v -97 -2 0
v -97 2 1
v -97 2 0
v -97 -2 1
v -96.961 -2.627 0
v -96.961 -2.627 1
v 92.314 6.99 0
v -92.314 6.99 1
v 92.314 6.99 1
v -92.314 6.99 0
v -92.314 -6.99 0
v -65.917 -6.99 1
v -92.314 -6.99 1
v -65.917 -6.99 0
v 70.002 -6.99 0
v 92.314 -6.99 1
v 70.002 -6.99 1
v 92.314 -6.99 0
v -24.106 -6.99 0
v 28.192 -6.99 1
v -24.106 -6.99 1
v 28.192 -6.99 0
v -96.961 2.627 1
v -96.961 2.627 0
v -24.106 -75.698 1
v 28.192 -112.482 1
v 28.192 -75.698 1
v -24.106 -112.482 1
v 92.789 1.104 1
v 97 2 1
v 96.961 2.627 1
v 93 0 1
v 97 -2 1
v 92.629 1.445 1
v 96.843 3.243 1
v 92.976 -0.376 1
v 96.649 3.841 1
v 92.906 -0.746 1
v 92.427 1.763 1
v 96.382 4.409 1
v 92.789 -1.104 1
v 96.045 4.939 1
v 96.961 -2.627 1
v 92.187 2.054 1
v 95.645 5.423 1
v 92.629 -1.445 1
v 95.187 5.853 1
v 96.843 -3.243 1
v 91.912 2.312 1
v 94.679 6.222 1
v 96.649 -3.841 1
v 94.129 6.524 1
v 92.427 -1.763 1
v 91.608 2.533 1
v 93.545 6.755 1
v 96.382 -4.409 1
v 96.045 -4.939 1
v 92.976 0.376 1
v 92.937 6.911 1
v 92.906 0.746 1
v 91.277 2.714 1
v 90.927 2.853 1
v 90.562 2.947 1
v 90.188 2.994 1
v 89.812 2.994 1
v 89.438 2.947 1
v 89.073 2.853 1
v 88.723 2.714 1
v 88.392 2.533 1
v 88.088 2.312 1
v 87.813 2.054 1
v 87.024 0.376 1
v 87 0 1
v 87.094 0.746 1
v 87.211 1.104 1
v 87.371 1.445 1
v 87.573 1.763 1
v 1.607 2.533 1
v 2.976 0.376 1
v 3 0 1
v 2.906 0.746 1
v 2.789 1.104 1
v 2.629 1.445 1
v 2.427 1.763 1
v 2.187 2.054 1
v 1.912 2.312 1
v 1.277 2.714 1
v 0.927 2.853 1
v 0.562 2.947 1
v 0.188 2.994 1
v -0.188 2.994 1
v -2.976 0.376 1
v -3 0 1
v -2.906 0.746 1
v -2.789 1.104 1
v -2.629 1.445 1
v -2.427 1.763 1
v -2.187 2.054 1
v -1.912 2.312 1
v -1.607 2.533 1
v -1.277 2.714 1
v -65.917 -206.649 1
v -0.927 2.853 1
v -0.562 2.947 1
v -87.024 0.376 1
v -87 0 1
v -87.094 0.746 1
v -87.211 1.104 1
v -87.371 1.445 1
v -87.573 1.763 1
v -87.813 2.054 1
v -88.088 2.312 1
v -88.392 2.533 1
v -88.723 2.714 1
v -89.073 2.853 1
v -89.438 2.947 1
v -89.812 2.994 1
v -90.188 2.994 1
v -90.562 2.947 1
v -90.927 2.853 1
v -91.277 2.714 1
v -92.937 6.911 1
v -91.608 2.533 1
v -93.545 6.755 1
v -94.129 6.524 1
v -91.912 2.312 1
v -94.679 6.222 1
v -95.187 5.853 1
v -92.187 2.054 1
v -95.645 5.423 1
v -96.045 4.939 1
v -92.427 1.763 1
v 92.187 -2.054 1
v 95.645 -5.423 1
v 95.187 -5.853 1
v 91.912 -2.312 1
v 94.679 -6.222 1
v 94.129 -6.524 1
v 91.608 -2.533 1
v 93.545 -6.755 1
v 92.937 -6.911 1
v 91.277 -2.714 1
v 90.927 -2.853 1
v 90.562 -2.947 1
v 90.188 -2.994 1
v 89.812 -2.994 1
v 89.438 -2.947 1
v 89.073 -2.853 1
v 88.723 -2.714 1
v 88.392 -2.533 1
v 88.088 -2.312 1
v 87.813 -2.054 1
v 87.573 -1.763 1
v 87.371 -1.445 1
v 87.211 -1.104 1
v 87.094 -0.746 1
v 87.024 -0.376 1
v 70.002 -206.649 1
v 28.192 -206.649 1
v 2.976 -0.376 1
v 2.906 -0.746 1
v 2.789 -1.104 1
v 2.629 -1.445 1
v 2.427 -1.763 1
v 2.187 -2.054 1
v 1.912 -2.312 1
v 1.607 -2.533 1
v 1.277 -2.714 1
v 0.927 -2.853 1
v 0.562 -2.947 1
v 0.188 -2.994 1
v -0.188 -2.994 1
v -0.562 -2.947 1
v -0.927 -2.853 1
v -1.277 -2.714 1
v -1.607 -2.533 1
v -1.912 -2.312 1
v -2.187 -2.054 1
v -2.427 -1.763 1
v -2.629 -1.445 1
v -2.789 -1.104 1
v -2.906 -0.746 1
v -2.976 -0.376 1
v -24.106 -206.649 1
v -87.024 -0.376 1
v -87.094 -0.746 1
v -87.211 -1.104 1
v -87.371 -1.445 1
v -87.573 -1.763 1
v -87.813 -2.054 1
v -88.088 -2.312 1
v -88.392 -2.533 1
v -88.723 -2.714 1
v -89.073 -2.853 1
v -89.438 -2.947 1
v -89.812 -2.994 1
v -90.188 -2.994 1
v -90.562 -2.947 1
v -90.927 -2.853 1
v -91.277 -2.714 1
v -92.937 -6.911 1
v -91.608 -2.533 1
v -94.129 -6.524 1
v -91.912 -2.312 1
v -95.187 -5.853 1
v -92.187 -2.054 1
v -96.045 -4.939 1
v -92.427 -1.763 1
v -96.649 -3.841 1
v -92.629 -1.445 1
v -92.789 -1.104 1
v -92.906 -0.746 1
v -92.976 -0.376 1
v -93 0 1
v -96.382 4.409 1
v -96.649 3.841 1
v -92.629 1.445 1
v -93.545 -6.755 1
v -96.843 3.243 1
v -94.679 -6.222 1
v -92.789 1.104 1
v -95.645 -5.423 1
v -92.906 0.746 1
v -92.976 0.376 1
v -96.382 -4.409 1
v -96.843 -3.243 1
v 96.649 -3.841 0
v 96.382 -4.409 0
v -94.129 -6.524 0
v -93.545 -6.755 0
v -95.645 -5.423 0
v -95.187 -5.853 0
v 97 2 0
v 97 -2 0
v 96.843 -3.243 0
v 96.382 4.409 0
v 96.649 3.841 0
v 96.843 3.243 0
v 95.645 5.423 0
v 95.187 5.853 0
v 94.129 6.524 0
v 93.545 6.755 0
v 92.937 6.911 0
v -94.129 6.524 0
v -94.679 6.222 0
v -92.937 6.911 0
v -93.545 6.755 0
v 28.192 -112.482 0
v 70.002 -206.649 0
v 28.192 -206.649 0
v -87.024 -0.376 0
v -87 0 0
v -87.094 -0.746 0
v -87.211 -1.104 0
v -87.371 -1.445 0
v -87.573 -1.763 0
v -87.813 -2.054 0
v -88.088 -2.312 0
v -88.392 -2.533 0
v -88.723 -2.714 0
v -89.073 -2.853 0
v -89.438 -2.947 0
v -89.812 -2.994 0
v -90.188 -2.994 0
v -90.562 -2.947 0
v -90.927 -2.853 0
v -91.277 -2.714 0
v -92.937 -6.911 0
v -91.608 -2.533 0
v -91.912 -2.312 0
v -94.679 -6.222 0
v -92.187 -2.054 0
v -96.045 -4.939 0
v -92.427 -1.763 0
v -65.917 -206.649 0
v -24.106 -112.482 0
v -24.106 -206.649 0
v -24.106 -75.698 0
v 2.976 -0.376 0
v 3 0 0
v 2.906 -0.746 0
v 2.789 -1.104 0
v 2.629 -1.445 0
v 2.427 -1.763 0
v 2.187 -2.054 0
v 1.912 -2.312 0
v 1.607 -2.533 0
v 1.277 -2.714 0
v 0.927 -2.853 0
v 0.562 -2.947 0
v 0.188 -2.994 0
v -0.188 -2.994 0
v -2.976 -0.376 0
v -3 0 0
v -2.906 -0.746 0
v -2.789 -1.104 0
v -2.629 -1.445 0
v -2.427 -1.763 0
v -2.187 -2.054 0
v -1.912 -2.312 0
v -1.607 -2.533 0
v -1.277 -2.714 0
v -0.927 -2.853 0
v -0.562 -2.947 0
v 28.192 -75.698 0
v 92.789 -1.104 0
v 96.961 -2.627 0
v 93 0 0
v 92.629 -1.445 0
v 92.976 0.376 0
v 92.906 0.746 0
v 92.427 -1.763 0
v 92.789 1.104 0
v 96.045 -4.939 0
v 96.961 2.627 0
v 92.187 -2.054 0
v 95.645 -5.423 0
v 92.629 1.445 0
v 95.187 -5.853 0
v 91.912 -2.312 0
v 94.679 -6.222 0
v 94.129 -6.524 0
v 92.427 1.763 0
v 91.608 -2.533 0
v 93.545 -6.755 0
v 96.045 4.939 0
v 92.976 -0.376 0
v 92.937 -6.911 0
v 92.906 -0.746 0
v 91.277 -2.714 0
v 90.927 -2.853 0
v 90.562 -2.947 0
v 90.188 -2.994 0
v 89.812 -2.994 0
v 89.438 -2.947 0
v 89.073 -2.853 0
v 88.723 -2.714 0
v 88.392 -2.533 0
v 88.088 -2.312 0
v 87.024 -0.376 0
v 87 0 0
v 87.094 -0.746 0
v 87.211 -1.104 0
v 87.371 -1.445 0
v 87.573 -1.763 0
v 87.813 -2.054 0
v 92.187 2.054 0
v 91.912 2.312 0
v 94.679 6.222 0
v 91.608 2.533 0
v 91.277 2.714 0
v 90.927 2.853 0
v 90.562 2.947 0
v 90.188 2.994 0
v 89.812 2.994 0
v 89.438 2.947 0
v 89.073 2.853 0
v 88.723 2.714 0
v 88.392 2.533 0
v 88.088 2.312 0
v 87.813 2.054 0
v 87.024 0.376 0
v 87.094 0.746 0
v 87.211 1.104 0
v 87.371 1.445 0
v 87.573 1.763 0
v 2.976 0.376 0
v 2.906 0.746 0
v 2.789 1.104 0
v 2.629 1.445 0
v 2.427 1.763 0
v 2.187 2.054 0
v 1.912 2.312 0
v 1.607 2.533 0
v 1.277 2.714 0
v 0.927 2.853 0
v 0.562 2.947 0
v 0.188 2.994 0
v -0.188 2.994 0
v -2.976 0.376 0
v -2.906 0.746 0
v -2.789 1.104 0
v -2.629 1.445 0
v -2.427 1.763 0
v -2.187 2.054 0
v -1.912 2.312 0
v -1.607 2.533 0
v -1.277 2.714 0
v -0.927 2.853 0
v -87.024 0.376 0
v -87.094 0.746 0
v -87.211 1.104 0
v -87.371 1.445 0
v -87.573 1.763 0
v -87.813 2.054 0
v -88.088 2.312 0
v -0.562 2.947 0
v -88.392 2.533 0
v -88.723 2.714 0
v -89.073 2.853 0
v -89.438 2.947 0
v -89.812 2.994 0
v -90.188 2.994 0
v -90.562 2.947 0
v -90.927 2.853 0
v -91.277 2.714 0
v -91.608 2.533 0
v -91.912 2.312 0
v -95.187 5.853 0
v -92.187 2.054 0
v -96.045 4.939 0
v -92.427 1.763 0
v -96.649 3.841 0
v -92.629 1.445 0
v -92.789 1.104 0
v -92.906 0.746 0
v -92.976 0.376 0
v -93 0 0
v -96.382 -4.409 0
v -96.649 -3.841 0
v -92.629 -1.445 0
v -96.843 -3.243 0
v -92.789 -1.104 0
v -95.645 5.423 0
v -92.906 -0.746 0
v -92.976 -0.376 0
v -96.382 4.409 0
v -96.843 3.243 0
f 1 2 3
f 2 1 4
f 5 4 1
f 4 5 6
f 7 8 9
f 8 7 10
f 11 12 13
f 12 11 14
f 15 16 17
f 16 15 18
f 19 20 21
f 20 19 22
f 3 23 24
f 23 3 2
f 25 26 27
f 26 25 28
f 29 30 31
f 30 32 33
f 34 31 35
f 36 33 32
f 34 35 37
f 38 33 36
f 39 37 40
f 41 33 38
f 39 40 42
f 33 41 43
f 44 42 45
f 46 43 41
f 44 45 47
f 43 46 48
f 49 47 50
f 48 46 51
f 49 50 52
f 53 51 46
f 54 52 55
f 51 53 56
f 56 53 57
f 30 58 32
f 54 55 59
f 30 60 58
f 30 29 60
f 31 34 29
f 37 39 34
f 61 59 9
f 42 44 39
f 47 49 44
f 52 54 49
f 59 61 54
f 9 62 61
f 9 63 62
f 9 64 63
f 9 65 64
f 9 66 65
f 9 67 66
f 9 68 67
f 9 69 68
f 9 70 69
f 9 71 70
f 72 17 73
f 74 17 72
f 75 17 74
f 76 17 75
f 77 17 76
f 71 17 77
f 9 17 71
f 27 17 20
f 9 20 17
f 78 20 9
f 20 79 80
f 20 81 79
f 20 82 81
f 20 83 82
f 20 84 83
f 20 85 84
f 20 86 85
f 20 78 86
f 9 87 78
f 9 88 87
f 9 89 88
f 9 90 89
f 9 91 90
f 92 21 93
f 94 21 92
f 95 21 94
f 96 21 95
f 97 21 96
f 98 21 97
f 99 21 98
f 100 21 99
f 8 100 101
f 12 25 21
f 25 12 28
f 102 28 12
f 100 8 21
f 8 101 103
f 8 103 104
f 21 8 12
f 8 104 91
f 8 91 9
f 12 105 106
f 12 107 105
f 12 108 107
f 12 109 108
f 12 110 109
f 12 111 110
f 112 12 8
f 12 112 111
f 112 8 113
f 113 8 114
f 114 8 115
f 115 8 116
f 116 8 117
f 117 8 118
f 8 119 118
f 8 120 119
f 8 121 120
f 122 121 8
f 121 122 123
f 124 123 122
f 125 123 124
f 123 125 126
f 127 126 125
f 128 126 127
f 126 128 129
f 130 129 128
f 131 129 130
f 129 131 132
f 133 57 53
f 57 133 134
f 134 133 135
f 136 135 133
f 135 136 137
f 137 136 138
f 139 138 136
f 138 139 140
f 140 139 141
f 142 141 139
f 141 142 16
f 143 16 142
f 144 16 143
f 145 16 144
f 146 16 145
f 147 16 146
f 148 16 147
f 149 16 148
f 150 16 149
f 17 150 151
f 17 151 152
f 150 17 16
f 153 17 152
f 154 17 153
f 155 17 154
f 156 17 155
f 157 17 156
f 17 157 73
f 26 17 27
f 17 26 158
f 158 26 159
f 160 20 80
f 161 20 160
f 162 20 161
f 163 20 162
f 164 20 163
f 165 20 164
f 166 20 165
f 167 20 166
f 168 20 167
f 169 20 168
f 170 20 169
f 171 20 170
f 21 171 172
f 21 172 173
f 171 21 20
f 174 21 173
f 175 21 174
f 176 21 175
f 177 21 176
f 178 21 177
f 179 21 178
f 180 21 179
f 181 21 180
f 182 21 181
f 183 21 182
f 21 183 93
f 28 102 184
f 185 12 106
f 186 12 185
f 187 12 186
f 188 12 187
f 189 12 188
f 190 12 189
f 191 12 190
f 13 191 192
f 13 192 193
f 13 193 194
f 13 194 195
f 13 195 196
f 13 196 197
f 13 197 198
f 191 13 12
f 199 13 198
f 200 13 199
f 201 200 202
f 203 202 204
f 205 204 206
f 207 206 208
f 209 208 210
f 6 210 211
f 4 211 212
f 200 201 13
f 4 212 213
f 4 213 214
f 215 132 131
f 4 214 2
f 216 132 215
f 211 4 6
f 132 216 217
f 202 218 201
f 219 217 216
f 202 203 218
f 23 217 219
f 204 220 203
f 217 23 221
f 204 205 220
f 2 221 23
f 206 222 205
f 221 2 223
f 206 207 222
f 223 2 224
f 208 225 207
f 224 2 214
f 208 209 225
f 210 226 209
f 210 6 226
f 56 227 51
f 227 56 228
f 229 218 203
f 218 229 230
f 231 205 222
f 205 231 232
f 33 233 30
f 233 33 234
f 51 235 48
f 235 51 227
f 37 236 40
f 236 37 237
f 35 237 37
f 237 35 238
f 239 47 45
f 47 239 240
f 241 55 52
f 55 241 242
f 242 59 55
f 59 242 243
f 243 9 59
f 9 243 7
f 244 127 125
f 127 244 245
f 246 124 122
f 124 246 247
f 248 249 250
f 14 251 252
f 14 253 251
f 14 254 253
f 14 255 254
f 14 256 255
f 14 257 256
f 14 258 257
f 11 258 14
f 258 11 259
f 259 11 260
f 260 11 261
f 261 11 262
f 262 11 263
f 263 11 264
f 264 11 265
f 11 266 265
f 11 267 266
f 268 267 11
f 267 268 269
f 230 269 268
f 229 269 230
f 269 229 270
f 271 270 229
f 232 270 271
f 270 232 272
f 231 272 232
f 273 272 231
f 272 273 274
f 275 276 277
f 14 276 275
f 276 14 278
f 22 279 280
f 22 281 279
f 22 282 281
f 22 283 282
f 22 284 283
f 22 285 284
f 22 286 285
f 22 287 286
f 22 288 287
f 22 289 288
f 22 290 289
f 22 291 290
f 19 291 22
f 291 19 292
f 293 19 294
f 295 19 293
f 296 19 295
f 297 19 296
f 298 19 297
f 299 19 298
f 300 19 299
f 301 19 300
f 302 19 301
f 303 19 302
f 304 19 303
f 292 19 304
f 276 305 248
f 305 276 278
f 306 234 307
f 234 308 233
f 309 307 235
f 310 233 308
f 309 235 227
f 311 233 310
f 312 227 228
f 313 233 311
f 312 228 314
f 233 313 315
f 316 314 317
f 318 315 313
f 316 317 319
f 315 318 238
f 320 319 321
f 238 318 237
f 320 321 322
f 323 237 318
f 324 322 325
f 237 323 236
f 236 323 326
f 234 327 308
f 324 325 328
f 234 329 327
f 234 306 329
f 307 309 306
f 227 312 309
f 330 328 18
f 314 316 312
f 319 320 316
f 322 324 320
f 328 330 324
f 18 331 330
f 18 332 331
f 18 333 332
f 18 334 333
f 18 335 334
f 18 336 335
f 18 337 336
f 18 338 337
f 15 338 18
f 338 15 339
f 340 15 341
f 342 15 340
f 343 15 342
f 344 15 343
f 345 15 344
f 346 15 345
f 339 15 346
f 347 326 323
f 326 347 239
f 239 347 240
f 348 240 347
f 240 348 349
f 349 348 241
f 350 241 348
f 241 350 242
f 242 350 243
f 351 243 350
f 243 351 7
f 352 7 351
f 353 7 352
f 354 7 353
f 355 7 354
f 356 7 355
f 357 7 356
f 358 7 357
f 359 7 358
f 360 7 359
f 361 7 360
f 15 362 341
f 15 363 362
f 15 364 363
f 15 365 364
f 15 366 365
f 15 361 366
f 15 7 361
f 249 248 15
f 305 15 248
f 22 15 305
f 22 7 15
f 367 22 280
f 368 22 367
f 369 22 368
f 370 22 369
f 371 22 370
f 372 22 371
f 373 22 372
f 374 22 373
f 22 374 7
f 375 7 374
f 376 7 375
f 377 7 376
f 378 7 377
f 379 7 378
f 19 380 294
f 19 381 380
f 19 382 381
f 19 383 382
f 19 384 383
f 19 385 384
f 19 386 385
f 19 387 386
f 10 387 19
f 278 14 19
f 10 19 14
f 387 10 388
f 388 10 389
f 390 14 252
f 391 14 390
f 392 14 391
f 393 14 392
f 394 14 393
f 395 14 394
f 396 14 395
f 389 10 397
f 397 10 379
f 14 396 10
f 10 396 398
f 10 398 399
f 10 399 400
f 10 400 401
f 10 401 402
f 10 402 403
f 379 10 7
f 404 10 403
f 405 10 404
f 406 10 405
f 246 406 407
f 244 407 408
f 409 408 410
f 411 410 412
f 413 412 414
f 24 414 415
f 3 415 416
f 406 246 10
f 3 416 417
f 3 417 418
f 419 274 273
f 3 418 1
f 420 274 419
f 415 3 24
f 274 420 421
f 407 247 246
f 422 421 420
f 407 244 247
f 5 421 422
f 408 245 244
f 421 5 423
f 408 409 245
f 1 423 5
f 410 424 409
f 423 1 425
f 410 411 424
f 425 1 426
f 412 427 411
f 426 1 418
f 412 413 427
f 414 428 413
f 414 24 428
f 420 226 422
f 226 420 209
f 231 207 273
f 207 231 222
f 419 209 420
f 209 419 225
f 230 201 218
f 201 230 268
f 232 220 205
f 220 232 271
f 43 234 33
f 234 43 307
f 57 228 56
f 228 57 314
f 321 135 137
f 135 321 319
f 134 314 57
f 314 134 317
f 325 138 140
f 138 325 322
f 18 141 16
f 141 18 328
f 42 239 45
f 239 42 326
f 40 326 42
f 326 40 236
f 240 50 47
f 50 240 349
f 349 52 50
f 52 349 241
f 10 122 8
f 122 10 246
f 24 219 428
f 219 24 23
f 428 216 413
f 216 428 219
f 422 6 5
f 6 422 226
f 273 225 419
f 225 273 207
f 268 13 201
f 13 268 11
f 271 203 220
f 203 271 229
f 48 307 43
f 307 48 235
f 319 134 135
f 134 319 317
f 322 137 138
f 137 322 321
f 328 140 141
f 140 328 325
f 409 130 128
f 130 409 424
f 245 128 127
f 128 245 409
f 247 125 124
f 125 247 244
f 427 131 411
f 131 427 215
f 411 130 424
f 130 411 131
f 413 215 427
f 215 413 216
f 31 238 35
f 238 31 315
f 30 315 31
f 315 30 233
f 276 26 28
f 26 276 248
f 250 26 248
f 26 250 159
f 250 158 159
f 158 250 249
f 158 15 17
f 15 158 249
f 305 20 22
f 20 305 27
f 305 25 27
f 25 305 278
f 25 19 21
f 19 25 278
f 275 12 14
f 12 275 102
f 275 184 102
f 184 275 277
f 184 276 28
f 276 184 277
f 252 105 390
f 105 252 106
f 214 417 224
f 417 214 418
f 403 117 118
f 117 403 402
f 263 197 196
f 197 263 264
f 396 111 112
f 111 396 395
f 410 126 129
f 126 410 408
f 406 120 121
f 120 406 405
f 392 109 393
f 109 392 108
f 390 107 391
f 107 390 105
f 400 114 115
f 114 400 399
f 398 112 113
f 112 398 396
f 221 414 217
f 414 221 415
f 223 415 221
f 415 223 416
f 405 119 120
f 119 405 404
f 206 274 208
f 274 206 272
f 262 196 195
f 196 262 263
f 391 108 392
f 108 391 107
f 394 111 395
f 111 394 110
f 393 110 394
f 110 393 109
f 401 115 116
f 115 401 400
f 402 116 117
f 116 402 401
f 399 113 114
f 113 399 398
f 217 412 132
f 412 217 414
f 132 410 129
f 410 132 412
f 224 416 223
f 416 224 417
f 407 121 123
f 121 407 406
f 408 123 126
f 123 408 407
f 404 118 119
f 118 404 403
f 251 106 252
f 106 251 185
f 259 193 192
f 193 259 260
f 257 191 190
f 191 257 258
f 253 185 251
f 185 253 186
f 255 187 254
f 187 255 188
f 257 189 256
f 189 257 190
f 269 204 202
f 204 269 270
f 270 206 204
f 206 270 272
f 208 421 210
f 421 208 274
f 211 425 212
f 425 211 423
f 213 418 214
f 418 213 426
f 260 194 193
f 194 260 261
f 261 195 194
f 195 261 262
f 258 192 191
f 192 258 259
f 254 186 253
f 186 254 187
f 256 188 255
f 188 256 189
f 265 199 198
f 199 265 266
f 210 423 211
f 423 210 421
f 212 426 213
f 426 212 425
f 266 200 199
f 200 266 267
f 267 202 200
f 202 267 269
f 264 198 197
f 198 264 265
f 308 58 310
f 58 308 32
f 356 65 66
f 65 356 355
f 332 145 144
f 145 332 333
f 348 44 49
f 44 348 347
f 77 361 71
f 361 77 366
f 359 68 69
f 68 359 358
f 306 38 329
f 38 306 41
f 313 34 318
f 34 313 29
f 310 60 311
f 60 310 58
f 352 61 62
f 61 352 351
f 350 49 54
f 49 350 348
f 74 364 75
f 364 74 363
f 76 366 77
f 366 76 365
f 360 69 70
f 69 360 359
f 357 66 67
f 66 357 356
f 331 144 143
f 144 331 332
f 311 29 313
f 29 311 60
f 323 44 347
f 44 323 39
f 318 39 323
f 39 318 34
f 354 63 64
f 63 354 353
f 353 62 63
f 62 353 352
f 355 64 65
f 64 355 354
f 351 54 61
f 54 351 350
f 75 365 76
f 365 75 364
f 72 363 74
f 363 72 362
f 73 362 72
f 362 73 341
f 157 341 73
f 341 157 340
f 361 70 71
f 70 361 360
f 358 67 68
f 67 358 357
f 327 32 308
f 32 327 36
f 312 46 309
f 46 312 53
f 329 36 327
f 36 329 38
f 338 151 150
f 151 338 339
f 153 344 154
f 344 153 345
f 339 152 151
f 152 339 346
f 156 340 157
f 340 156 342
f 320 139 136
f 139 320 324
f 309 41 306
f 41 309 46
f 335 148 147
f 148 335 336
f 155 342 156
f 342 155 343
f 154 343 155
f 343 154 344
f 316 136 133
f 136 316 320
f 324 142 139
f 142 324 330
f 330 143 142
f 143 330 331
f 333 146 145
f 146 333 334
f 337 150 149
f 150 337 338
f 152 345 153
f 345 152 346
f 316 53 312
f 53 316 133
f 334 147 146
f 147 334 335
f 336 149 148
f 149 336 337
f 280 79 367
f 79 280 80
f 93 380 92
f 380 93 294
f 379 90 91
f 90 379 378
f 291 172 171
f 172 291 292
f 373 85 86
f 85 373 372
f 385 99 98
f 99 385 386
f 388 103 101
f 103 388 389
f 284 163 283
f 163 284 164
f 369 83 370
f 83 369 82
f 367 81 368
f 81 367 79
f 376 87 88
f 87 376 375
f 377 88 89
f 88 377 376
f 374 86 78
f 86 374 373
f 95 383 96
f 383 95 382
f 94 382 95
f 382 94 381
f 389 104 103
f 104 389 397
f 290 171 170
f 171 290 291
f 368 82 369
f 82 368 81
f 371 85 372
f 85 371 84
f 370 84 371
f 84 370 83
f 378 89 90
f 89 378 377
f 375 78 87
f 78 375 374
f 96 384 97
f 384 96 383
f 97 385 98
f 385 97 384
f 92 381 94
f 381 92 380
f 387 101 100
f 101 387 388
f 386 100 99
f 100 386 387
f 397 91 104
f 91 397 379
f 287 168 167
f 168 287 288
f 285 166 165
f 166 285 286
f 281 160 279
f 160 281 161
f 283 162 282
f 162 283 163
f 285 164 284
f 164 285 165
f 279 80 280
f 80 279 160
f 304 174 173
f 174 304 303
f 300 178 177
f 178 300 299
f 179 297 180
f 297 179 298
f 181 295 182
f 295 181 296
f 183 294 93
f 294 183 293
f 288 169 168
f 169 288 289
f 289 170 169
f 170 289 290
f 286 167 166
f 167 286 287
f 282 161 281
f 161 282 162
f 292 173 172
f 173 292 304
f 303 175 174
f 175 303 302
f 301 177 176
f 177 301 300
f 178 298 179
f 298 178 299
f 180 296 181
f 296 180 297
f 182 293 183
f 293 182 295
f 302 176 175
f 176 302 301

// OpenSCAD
$fn = 50;


difference() {
	union() {
		translate(v = [0, 0, 0]) {
			rotate(a = [0, 0, 0]) {
				hull() {
					translate(v = [-92.0000000000, 2.0000000000, 0]) {
						rotate(a = [0, 0, 0]) {
							translate(v = [0, 0, 0]) {
								rotate(a = [0, 0, 0]) {
									cylinder(h = 1, r = 5);
								}
							}
						}
					}
					translate(v = [92.0000000000, 2.0000000000, 0]) {
						rotate(a = [0, 0, 0]) {
							translate(v = [0, 0, 0]) {
								rotate(a = [0, 0, 0]) {
									cylinder(h = 1, r = 5);
								}
							}
						}
					}
					translate(v = [-92.0000000000, -2.0000000000, 0]) {
						rotate(a = [0, 0, 0]) {
							translate(v = [0, 0, 0]) {
								rotate(a = [0, 0, 0]) {
									cylinder(h = 1, r = 5);
								}
							}
						}
					}
					translate(v = [92.0000000000, -2.0000000000, 0]) {
						rotate(a = [0, 0, 0]) {
							translate(v = [0, 0, 0]) {
								rotate(a = [0, 0, 0]) {
									cylinder(h = 1, r = 5);
								}
							}
						}
					}
				}
			}
		}
		translate(v = [0, 0, 0]) {
			rotate(a = [0, 0, 0]) {
				linear_extrude(height = 1) {
					text(font = "DejaVu Sans Mono:style=Bold", halign = "center", size = 209.0000000000, text = "H", valign = "top");
				}
			}
		}
	}
	union() {
		translate(v = [-90.0000000000, 0.0000000000, -125.0000000000]) {
			rotate(a = [0, 0, 0]) {
				cylinder(h = 250, r = 3.0000000000);
			}
		}
		translate(v = [90.0000000000, 0.0000000000, -125.0000000000]) {
			rotate(a = [0, 0, 0]) {
				cylinder(h = 250, r = 3.0000000000);
			}
		}
		translate(v = [90.0000000000, 0.0000000000, -125.0000000000]) {
			rotate(a = [0, 0, 0]) {
				cylinder(h = 250, r = 3.0000000000);
			}
		}
		translate(v = [0, 0, -125.0000000000]) {
			rotate(a = [0, 0, 0]) {
				cylinder(h = 250, r = 3.0000000000);
			}
		}
	}
}
